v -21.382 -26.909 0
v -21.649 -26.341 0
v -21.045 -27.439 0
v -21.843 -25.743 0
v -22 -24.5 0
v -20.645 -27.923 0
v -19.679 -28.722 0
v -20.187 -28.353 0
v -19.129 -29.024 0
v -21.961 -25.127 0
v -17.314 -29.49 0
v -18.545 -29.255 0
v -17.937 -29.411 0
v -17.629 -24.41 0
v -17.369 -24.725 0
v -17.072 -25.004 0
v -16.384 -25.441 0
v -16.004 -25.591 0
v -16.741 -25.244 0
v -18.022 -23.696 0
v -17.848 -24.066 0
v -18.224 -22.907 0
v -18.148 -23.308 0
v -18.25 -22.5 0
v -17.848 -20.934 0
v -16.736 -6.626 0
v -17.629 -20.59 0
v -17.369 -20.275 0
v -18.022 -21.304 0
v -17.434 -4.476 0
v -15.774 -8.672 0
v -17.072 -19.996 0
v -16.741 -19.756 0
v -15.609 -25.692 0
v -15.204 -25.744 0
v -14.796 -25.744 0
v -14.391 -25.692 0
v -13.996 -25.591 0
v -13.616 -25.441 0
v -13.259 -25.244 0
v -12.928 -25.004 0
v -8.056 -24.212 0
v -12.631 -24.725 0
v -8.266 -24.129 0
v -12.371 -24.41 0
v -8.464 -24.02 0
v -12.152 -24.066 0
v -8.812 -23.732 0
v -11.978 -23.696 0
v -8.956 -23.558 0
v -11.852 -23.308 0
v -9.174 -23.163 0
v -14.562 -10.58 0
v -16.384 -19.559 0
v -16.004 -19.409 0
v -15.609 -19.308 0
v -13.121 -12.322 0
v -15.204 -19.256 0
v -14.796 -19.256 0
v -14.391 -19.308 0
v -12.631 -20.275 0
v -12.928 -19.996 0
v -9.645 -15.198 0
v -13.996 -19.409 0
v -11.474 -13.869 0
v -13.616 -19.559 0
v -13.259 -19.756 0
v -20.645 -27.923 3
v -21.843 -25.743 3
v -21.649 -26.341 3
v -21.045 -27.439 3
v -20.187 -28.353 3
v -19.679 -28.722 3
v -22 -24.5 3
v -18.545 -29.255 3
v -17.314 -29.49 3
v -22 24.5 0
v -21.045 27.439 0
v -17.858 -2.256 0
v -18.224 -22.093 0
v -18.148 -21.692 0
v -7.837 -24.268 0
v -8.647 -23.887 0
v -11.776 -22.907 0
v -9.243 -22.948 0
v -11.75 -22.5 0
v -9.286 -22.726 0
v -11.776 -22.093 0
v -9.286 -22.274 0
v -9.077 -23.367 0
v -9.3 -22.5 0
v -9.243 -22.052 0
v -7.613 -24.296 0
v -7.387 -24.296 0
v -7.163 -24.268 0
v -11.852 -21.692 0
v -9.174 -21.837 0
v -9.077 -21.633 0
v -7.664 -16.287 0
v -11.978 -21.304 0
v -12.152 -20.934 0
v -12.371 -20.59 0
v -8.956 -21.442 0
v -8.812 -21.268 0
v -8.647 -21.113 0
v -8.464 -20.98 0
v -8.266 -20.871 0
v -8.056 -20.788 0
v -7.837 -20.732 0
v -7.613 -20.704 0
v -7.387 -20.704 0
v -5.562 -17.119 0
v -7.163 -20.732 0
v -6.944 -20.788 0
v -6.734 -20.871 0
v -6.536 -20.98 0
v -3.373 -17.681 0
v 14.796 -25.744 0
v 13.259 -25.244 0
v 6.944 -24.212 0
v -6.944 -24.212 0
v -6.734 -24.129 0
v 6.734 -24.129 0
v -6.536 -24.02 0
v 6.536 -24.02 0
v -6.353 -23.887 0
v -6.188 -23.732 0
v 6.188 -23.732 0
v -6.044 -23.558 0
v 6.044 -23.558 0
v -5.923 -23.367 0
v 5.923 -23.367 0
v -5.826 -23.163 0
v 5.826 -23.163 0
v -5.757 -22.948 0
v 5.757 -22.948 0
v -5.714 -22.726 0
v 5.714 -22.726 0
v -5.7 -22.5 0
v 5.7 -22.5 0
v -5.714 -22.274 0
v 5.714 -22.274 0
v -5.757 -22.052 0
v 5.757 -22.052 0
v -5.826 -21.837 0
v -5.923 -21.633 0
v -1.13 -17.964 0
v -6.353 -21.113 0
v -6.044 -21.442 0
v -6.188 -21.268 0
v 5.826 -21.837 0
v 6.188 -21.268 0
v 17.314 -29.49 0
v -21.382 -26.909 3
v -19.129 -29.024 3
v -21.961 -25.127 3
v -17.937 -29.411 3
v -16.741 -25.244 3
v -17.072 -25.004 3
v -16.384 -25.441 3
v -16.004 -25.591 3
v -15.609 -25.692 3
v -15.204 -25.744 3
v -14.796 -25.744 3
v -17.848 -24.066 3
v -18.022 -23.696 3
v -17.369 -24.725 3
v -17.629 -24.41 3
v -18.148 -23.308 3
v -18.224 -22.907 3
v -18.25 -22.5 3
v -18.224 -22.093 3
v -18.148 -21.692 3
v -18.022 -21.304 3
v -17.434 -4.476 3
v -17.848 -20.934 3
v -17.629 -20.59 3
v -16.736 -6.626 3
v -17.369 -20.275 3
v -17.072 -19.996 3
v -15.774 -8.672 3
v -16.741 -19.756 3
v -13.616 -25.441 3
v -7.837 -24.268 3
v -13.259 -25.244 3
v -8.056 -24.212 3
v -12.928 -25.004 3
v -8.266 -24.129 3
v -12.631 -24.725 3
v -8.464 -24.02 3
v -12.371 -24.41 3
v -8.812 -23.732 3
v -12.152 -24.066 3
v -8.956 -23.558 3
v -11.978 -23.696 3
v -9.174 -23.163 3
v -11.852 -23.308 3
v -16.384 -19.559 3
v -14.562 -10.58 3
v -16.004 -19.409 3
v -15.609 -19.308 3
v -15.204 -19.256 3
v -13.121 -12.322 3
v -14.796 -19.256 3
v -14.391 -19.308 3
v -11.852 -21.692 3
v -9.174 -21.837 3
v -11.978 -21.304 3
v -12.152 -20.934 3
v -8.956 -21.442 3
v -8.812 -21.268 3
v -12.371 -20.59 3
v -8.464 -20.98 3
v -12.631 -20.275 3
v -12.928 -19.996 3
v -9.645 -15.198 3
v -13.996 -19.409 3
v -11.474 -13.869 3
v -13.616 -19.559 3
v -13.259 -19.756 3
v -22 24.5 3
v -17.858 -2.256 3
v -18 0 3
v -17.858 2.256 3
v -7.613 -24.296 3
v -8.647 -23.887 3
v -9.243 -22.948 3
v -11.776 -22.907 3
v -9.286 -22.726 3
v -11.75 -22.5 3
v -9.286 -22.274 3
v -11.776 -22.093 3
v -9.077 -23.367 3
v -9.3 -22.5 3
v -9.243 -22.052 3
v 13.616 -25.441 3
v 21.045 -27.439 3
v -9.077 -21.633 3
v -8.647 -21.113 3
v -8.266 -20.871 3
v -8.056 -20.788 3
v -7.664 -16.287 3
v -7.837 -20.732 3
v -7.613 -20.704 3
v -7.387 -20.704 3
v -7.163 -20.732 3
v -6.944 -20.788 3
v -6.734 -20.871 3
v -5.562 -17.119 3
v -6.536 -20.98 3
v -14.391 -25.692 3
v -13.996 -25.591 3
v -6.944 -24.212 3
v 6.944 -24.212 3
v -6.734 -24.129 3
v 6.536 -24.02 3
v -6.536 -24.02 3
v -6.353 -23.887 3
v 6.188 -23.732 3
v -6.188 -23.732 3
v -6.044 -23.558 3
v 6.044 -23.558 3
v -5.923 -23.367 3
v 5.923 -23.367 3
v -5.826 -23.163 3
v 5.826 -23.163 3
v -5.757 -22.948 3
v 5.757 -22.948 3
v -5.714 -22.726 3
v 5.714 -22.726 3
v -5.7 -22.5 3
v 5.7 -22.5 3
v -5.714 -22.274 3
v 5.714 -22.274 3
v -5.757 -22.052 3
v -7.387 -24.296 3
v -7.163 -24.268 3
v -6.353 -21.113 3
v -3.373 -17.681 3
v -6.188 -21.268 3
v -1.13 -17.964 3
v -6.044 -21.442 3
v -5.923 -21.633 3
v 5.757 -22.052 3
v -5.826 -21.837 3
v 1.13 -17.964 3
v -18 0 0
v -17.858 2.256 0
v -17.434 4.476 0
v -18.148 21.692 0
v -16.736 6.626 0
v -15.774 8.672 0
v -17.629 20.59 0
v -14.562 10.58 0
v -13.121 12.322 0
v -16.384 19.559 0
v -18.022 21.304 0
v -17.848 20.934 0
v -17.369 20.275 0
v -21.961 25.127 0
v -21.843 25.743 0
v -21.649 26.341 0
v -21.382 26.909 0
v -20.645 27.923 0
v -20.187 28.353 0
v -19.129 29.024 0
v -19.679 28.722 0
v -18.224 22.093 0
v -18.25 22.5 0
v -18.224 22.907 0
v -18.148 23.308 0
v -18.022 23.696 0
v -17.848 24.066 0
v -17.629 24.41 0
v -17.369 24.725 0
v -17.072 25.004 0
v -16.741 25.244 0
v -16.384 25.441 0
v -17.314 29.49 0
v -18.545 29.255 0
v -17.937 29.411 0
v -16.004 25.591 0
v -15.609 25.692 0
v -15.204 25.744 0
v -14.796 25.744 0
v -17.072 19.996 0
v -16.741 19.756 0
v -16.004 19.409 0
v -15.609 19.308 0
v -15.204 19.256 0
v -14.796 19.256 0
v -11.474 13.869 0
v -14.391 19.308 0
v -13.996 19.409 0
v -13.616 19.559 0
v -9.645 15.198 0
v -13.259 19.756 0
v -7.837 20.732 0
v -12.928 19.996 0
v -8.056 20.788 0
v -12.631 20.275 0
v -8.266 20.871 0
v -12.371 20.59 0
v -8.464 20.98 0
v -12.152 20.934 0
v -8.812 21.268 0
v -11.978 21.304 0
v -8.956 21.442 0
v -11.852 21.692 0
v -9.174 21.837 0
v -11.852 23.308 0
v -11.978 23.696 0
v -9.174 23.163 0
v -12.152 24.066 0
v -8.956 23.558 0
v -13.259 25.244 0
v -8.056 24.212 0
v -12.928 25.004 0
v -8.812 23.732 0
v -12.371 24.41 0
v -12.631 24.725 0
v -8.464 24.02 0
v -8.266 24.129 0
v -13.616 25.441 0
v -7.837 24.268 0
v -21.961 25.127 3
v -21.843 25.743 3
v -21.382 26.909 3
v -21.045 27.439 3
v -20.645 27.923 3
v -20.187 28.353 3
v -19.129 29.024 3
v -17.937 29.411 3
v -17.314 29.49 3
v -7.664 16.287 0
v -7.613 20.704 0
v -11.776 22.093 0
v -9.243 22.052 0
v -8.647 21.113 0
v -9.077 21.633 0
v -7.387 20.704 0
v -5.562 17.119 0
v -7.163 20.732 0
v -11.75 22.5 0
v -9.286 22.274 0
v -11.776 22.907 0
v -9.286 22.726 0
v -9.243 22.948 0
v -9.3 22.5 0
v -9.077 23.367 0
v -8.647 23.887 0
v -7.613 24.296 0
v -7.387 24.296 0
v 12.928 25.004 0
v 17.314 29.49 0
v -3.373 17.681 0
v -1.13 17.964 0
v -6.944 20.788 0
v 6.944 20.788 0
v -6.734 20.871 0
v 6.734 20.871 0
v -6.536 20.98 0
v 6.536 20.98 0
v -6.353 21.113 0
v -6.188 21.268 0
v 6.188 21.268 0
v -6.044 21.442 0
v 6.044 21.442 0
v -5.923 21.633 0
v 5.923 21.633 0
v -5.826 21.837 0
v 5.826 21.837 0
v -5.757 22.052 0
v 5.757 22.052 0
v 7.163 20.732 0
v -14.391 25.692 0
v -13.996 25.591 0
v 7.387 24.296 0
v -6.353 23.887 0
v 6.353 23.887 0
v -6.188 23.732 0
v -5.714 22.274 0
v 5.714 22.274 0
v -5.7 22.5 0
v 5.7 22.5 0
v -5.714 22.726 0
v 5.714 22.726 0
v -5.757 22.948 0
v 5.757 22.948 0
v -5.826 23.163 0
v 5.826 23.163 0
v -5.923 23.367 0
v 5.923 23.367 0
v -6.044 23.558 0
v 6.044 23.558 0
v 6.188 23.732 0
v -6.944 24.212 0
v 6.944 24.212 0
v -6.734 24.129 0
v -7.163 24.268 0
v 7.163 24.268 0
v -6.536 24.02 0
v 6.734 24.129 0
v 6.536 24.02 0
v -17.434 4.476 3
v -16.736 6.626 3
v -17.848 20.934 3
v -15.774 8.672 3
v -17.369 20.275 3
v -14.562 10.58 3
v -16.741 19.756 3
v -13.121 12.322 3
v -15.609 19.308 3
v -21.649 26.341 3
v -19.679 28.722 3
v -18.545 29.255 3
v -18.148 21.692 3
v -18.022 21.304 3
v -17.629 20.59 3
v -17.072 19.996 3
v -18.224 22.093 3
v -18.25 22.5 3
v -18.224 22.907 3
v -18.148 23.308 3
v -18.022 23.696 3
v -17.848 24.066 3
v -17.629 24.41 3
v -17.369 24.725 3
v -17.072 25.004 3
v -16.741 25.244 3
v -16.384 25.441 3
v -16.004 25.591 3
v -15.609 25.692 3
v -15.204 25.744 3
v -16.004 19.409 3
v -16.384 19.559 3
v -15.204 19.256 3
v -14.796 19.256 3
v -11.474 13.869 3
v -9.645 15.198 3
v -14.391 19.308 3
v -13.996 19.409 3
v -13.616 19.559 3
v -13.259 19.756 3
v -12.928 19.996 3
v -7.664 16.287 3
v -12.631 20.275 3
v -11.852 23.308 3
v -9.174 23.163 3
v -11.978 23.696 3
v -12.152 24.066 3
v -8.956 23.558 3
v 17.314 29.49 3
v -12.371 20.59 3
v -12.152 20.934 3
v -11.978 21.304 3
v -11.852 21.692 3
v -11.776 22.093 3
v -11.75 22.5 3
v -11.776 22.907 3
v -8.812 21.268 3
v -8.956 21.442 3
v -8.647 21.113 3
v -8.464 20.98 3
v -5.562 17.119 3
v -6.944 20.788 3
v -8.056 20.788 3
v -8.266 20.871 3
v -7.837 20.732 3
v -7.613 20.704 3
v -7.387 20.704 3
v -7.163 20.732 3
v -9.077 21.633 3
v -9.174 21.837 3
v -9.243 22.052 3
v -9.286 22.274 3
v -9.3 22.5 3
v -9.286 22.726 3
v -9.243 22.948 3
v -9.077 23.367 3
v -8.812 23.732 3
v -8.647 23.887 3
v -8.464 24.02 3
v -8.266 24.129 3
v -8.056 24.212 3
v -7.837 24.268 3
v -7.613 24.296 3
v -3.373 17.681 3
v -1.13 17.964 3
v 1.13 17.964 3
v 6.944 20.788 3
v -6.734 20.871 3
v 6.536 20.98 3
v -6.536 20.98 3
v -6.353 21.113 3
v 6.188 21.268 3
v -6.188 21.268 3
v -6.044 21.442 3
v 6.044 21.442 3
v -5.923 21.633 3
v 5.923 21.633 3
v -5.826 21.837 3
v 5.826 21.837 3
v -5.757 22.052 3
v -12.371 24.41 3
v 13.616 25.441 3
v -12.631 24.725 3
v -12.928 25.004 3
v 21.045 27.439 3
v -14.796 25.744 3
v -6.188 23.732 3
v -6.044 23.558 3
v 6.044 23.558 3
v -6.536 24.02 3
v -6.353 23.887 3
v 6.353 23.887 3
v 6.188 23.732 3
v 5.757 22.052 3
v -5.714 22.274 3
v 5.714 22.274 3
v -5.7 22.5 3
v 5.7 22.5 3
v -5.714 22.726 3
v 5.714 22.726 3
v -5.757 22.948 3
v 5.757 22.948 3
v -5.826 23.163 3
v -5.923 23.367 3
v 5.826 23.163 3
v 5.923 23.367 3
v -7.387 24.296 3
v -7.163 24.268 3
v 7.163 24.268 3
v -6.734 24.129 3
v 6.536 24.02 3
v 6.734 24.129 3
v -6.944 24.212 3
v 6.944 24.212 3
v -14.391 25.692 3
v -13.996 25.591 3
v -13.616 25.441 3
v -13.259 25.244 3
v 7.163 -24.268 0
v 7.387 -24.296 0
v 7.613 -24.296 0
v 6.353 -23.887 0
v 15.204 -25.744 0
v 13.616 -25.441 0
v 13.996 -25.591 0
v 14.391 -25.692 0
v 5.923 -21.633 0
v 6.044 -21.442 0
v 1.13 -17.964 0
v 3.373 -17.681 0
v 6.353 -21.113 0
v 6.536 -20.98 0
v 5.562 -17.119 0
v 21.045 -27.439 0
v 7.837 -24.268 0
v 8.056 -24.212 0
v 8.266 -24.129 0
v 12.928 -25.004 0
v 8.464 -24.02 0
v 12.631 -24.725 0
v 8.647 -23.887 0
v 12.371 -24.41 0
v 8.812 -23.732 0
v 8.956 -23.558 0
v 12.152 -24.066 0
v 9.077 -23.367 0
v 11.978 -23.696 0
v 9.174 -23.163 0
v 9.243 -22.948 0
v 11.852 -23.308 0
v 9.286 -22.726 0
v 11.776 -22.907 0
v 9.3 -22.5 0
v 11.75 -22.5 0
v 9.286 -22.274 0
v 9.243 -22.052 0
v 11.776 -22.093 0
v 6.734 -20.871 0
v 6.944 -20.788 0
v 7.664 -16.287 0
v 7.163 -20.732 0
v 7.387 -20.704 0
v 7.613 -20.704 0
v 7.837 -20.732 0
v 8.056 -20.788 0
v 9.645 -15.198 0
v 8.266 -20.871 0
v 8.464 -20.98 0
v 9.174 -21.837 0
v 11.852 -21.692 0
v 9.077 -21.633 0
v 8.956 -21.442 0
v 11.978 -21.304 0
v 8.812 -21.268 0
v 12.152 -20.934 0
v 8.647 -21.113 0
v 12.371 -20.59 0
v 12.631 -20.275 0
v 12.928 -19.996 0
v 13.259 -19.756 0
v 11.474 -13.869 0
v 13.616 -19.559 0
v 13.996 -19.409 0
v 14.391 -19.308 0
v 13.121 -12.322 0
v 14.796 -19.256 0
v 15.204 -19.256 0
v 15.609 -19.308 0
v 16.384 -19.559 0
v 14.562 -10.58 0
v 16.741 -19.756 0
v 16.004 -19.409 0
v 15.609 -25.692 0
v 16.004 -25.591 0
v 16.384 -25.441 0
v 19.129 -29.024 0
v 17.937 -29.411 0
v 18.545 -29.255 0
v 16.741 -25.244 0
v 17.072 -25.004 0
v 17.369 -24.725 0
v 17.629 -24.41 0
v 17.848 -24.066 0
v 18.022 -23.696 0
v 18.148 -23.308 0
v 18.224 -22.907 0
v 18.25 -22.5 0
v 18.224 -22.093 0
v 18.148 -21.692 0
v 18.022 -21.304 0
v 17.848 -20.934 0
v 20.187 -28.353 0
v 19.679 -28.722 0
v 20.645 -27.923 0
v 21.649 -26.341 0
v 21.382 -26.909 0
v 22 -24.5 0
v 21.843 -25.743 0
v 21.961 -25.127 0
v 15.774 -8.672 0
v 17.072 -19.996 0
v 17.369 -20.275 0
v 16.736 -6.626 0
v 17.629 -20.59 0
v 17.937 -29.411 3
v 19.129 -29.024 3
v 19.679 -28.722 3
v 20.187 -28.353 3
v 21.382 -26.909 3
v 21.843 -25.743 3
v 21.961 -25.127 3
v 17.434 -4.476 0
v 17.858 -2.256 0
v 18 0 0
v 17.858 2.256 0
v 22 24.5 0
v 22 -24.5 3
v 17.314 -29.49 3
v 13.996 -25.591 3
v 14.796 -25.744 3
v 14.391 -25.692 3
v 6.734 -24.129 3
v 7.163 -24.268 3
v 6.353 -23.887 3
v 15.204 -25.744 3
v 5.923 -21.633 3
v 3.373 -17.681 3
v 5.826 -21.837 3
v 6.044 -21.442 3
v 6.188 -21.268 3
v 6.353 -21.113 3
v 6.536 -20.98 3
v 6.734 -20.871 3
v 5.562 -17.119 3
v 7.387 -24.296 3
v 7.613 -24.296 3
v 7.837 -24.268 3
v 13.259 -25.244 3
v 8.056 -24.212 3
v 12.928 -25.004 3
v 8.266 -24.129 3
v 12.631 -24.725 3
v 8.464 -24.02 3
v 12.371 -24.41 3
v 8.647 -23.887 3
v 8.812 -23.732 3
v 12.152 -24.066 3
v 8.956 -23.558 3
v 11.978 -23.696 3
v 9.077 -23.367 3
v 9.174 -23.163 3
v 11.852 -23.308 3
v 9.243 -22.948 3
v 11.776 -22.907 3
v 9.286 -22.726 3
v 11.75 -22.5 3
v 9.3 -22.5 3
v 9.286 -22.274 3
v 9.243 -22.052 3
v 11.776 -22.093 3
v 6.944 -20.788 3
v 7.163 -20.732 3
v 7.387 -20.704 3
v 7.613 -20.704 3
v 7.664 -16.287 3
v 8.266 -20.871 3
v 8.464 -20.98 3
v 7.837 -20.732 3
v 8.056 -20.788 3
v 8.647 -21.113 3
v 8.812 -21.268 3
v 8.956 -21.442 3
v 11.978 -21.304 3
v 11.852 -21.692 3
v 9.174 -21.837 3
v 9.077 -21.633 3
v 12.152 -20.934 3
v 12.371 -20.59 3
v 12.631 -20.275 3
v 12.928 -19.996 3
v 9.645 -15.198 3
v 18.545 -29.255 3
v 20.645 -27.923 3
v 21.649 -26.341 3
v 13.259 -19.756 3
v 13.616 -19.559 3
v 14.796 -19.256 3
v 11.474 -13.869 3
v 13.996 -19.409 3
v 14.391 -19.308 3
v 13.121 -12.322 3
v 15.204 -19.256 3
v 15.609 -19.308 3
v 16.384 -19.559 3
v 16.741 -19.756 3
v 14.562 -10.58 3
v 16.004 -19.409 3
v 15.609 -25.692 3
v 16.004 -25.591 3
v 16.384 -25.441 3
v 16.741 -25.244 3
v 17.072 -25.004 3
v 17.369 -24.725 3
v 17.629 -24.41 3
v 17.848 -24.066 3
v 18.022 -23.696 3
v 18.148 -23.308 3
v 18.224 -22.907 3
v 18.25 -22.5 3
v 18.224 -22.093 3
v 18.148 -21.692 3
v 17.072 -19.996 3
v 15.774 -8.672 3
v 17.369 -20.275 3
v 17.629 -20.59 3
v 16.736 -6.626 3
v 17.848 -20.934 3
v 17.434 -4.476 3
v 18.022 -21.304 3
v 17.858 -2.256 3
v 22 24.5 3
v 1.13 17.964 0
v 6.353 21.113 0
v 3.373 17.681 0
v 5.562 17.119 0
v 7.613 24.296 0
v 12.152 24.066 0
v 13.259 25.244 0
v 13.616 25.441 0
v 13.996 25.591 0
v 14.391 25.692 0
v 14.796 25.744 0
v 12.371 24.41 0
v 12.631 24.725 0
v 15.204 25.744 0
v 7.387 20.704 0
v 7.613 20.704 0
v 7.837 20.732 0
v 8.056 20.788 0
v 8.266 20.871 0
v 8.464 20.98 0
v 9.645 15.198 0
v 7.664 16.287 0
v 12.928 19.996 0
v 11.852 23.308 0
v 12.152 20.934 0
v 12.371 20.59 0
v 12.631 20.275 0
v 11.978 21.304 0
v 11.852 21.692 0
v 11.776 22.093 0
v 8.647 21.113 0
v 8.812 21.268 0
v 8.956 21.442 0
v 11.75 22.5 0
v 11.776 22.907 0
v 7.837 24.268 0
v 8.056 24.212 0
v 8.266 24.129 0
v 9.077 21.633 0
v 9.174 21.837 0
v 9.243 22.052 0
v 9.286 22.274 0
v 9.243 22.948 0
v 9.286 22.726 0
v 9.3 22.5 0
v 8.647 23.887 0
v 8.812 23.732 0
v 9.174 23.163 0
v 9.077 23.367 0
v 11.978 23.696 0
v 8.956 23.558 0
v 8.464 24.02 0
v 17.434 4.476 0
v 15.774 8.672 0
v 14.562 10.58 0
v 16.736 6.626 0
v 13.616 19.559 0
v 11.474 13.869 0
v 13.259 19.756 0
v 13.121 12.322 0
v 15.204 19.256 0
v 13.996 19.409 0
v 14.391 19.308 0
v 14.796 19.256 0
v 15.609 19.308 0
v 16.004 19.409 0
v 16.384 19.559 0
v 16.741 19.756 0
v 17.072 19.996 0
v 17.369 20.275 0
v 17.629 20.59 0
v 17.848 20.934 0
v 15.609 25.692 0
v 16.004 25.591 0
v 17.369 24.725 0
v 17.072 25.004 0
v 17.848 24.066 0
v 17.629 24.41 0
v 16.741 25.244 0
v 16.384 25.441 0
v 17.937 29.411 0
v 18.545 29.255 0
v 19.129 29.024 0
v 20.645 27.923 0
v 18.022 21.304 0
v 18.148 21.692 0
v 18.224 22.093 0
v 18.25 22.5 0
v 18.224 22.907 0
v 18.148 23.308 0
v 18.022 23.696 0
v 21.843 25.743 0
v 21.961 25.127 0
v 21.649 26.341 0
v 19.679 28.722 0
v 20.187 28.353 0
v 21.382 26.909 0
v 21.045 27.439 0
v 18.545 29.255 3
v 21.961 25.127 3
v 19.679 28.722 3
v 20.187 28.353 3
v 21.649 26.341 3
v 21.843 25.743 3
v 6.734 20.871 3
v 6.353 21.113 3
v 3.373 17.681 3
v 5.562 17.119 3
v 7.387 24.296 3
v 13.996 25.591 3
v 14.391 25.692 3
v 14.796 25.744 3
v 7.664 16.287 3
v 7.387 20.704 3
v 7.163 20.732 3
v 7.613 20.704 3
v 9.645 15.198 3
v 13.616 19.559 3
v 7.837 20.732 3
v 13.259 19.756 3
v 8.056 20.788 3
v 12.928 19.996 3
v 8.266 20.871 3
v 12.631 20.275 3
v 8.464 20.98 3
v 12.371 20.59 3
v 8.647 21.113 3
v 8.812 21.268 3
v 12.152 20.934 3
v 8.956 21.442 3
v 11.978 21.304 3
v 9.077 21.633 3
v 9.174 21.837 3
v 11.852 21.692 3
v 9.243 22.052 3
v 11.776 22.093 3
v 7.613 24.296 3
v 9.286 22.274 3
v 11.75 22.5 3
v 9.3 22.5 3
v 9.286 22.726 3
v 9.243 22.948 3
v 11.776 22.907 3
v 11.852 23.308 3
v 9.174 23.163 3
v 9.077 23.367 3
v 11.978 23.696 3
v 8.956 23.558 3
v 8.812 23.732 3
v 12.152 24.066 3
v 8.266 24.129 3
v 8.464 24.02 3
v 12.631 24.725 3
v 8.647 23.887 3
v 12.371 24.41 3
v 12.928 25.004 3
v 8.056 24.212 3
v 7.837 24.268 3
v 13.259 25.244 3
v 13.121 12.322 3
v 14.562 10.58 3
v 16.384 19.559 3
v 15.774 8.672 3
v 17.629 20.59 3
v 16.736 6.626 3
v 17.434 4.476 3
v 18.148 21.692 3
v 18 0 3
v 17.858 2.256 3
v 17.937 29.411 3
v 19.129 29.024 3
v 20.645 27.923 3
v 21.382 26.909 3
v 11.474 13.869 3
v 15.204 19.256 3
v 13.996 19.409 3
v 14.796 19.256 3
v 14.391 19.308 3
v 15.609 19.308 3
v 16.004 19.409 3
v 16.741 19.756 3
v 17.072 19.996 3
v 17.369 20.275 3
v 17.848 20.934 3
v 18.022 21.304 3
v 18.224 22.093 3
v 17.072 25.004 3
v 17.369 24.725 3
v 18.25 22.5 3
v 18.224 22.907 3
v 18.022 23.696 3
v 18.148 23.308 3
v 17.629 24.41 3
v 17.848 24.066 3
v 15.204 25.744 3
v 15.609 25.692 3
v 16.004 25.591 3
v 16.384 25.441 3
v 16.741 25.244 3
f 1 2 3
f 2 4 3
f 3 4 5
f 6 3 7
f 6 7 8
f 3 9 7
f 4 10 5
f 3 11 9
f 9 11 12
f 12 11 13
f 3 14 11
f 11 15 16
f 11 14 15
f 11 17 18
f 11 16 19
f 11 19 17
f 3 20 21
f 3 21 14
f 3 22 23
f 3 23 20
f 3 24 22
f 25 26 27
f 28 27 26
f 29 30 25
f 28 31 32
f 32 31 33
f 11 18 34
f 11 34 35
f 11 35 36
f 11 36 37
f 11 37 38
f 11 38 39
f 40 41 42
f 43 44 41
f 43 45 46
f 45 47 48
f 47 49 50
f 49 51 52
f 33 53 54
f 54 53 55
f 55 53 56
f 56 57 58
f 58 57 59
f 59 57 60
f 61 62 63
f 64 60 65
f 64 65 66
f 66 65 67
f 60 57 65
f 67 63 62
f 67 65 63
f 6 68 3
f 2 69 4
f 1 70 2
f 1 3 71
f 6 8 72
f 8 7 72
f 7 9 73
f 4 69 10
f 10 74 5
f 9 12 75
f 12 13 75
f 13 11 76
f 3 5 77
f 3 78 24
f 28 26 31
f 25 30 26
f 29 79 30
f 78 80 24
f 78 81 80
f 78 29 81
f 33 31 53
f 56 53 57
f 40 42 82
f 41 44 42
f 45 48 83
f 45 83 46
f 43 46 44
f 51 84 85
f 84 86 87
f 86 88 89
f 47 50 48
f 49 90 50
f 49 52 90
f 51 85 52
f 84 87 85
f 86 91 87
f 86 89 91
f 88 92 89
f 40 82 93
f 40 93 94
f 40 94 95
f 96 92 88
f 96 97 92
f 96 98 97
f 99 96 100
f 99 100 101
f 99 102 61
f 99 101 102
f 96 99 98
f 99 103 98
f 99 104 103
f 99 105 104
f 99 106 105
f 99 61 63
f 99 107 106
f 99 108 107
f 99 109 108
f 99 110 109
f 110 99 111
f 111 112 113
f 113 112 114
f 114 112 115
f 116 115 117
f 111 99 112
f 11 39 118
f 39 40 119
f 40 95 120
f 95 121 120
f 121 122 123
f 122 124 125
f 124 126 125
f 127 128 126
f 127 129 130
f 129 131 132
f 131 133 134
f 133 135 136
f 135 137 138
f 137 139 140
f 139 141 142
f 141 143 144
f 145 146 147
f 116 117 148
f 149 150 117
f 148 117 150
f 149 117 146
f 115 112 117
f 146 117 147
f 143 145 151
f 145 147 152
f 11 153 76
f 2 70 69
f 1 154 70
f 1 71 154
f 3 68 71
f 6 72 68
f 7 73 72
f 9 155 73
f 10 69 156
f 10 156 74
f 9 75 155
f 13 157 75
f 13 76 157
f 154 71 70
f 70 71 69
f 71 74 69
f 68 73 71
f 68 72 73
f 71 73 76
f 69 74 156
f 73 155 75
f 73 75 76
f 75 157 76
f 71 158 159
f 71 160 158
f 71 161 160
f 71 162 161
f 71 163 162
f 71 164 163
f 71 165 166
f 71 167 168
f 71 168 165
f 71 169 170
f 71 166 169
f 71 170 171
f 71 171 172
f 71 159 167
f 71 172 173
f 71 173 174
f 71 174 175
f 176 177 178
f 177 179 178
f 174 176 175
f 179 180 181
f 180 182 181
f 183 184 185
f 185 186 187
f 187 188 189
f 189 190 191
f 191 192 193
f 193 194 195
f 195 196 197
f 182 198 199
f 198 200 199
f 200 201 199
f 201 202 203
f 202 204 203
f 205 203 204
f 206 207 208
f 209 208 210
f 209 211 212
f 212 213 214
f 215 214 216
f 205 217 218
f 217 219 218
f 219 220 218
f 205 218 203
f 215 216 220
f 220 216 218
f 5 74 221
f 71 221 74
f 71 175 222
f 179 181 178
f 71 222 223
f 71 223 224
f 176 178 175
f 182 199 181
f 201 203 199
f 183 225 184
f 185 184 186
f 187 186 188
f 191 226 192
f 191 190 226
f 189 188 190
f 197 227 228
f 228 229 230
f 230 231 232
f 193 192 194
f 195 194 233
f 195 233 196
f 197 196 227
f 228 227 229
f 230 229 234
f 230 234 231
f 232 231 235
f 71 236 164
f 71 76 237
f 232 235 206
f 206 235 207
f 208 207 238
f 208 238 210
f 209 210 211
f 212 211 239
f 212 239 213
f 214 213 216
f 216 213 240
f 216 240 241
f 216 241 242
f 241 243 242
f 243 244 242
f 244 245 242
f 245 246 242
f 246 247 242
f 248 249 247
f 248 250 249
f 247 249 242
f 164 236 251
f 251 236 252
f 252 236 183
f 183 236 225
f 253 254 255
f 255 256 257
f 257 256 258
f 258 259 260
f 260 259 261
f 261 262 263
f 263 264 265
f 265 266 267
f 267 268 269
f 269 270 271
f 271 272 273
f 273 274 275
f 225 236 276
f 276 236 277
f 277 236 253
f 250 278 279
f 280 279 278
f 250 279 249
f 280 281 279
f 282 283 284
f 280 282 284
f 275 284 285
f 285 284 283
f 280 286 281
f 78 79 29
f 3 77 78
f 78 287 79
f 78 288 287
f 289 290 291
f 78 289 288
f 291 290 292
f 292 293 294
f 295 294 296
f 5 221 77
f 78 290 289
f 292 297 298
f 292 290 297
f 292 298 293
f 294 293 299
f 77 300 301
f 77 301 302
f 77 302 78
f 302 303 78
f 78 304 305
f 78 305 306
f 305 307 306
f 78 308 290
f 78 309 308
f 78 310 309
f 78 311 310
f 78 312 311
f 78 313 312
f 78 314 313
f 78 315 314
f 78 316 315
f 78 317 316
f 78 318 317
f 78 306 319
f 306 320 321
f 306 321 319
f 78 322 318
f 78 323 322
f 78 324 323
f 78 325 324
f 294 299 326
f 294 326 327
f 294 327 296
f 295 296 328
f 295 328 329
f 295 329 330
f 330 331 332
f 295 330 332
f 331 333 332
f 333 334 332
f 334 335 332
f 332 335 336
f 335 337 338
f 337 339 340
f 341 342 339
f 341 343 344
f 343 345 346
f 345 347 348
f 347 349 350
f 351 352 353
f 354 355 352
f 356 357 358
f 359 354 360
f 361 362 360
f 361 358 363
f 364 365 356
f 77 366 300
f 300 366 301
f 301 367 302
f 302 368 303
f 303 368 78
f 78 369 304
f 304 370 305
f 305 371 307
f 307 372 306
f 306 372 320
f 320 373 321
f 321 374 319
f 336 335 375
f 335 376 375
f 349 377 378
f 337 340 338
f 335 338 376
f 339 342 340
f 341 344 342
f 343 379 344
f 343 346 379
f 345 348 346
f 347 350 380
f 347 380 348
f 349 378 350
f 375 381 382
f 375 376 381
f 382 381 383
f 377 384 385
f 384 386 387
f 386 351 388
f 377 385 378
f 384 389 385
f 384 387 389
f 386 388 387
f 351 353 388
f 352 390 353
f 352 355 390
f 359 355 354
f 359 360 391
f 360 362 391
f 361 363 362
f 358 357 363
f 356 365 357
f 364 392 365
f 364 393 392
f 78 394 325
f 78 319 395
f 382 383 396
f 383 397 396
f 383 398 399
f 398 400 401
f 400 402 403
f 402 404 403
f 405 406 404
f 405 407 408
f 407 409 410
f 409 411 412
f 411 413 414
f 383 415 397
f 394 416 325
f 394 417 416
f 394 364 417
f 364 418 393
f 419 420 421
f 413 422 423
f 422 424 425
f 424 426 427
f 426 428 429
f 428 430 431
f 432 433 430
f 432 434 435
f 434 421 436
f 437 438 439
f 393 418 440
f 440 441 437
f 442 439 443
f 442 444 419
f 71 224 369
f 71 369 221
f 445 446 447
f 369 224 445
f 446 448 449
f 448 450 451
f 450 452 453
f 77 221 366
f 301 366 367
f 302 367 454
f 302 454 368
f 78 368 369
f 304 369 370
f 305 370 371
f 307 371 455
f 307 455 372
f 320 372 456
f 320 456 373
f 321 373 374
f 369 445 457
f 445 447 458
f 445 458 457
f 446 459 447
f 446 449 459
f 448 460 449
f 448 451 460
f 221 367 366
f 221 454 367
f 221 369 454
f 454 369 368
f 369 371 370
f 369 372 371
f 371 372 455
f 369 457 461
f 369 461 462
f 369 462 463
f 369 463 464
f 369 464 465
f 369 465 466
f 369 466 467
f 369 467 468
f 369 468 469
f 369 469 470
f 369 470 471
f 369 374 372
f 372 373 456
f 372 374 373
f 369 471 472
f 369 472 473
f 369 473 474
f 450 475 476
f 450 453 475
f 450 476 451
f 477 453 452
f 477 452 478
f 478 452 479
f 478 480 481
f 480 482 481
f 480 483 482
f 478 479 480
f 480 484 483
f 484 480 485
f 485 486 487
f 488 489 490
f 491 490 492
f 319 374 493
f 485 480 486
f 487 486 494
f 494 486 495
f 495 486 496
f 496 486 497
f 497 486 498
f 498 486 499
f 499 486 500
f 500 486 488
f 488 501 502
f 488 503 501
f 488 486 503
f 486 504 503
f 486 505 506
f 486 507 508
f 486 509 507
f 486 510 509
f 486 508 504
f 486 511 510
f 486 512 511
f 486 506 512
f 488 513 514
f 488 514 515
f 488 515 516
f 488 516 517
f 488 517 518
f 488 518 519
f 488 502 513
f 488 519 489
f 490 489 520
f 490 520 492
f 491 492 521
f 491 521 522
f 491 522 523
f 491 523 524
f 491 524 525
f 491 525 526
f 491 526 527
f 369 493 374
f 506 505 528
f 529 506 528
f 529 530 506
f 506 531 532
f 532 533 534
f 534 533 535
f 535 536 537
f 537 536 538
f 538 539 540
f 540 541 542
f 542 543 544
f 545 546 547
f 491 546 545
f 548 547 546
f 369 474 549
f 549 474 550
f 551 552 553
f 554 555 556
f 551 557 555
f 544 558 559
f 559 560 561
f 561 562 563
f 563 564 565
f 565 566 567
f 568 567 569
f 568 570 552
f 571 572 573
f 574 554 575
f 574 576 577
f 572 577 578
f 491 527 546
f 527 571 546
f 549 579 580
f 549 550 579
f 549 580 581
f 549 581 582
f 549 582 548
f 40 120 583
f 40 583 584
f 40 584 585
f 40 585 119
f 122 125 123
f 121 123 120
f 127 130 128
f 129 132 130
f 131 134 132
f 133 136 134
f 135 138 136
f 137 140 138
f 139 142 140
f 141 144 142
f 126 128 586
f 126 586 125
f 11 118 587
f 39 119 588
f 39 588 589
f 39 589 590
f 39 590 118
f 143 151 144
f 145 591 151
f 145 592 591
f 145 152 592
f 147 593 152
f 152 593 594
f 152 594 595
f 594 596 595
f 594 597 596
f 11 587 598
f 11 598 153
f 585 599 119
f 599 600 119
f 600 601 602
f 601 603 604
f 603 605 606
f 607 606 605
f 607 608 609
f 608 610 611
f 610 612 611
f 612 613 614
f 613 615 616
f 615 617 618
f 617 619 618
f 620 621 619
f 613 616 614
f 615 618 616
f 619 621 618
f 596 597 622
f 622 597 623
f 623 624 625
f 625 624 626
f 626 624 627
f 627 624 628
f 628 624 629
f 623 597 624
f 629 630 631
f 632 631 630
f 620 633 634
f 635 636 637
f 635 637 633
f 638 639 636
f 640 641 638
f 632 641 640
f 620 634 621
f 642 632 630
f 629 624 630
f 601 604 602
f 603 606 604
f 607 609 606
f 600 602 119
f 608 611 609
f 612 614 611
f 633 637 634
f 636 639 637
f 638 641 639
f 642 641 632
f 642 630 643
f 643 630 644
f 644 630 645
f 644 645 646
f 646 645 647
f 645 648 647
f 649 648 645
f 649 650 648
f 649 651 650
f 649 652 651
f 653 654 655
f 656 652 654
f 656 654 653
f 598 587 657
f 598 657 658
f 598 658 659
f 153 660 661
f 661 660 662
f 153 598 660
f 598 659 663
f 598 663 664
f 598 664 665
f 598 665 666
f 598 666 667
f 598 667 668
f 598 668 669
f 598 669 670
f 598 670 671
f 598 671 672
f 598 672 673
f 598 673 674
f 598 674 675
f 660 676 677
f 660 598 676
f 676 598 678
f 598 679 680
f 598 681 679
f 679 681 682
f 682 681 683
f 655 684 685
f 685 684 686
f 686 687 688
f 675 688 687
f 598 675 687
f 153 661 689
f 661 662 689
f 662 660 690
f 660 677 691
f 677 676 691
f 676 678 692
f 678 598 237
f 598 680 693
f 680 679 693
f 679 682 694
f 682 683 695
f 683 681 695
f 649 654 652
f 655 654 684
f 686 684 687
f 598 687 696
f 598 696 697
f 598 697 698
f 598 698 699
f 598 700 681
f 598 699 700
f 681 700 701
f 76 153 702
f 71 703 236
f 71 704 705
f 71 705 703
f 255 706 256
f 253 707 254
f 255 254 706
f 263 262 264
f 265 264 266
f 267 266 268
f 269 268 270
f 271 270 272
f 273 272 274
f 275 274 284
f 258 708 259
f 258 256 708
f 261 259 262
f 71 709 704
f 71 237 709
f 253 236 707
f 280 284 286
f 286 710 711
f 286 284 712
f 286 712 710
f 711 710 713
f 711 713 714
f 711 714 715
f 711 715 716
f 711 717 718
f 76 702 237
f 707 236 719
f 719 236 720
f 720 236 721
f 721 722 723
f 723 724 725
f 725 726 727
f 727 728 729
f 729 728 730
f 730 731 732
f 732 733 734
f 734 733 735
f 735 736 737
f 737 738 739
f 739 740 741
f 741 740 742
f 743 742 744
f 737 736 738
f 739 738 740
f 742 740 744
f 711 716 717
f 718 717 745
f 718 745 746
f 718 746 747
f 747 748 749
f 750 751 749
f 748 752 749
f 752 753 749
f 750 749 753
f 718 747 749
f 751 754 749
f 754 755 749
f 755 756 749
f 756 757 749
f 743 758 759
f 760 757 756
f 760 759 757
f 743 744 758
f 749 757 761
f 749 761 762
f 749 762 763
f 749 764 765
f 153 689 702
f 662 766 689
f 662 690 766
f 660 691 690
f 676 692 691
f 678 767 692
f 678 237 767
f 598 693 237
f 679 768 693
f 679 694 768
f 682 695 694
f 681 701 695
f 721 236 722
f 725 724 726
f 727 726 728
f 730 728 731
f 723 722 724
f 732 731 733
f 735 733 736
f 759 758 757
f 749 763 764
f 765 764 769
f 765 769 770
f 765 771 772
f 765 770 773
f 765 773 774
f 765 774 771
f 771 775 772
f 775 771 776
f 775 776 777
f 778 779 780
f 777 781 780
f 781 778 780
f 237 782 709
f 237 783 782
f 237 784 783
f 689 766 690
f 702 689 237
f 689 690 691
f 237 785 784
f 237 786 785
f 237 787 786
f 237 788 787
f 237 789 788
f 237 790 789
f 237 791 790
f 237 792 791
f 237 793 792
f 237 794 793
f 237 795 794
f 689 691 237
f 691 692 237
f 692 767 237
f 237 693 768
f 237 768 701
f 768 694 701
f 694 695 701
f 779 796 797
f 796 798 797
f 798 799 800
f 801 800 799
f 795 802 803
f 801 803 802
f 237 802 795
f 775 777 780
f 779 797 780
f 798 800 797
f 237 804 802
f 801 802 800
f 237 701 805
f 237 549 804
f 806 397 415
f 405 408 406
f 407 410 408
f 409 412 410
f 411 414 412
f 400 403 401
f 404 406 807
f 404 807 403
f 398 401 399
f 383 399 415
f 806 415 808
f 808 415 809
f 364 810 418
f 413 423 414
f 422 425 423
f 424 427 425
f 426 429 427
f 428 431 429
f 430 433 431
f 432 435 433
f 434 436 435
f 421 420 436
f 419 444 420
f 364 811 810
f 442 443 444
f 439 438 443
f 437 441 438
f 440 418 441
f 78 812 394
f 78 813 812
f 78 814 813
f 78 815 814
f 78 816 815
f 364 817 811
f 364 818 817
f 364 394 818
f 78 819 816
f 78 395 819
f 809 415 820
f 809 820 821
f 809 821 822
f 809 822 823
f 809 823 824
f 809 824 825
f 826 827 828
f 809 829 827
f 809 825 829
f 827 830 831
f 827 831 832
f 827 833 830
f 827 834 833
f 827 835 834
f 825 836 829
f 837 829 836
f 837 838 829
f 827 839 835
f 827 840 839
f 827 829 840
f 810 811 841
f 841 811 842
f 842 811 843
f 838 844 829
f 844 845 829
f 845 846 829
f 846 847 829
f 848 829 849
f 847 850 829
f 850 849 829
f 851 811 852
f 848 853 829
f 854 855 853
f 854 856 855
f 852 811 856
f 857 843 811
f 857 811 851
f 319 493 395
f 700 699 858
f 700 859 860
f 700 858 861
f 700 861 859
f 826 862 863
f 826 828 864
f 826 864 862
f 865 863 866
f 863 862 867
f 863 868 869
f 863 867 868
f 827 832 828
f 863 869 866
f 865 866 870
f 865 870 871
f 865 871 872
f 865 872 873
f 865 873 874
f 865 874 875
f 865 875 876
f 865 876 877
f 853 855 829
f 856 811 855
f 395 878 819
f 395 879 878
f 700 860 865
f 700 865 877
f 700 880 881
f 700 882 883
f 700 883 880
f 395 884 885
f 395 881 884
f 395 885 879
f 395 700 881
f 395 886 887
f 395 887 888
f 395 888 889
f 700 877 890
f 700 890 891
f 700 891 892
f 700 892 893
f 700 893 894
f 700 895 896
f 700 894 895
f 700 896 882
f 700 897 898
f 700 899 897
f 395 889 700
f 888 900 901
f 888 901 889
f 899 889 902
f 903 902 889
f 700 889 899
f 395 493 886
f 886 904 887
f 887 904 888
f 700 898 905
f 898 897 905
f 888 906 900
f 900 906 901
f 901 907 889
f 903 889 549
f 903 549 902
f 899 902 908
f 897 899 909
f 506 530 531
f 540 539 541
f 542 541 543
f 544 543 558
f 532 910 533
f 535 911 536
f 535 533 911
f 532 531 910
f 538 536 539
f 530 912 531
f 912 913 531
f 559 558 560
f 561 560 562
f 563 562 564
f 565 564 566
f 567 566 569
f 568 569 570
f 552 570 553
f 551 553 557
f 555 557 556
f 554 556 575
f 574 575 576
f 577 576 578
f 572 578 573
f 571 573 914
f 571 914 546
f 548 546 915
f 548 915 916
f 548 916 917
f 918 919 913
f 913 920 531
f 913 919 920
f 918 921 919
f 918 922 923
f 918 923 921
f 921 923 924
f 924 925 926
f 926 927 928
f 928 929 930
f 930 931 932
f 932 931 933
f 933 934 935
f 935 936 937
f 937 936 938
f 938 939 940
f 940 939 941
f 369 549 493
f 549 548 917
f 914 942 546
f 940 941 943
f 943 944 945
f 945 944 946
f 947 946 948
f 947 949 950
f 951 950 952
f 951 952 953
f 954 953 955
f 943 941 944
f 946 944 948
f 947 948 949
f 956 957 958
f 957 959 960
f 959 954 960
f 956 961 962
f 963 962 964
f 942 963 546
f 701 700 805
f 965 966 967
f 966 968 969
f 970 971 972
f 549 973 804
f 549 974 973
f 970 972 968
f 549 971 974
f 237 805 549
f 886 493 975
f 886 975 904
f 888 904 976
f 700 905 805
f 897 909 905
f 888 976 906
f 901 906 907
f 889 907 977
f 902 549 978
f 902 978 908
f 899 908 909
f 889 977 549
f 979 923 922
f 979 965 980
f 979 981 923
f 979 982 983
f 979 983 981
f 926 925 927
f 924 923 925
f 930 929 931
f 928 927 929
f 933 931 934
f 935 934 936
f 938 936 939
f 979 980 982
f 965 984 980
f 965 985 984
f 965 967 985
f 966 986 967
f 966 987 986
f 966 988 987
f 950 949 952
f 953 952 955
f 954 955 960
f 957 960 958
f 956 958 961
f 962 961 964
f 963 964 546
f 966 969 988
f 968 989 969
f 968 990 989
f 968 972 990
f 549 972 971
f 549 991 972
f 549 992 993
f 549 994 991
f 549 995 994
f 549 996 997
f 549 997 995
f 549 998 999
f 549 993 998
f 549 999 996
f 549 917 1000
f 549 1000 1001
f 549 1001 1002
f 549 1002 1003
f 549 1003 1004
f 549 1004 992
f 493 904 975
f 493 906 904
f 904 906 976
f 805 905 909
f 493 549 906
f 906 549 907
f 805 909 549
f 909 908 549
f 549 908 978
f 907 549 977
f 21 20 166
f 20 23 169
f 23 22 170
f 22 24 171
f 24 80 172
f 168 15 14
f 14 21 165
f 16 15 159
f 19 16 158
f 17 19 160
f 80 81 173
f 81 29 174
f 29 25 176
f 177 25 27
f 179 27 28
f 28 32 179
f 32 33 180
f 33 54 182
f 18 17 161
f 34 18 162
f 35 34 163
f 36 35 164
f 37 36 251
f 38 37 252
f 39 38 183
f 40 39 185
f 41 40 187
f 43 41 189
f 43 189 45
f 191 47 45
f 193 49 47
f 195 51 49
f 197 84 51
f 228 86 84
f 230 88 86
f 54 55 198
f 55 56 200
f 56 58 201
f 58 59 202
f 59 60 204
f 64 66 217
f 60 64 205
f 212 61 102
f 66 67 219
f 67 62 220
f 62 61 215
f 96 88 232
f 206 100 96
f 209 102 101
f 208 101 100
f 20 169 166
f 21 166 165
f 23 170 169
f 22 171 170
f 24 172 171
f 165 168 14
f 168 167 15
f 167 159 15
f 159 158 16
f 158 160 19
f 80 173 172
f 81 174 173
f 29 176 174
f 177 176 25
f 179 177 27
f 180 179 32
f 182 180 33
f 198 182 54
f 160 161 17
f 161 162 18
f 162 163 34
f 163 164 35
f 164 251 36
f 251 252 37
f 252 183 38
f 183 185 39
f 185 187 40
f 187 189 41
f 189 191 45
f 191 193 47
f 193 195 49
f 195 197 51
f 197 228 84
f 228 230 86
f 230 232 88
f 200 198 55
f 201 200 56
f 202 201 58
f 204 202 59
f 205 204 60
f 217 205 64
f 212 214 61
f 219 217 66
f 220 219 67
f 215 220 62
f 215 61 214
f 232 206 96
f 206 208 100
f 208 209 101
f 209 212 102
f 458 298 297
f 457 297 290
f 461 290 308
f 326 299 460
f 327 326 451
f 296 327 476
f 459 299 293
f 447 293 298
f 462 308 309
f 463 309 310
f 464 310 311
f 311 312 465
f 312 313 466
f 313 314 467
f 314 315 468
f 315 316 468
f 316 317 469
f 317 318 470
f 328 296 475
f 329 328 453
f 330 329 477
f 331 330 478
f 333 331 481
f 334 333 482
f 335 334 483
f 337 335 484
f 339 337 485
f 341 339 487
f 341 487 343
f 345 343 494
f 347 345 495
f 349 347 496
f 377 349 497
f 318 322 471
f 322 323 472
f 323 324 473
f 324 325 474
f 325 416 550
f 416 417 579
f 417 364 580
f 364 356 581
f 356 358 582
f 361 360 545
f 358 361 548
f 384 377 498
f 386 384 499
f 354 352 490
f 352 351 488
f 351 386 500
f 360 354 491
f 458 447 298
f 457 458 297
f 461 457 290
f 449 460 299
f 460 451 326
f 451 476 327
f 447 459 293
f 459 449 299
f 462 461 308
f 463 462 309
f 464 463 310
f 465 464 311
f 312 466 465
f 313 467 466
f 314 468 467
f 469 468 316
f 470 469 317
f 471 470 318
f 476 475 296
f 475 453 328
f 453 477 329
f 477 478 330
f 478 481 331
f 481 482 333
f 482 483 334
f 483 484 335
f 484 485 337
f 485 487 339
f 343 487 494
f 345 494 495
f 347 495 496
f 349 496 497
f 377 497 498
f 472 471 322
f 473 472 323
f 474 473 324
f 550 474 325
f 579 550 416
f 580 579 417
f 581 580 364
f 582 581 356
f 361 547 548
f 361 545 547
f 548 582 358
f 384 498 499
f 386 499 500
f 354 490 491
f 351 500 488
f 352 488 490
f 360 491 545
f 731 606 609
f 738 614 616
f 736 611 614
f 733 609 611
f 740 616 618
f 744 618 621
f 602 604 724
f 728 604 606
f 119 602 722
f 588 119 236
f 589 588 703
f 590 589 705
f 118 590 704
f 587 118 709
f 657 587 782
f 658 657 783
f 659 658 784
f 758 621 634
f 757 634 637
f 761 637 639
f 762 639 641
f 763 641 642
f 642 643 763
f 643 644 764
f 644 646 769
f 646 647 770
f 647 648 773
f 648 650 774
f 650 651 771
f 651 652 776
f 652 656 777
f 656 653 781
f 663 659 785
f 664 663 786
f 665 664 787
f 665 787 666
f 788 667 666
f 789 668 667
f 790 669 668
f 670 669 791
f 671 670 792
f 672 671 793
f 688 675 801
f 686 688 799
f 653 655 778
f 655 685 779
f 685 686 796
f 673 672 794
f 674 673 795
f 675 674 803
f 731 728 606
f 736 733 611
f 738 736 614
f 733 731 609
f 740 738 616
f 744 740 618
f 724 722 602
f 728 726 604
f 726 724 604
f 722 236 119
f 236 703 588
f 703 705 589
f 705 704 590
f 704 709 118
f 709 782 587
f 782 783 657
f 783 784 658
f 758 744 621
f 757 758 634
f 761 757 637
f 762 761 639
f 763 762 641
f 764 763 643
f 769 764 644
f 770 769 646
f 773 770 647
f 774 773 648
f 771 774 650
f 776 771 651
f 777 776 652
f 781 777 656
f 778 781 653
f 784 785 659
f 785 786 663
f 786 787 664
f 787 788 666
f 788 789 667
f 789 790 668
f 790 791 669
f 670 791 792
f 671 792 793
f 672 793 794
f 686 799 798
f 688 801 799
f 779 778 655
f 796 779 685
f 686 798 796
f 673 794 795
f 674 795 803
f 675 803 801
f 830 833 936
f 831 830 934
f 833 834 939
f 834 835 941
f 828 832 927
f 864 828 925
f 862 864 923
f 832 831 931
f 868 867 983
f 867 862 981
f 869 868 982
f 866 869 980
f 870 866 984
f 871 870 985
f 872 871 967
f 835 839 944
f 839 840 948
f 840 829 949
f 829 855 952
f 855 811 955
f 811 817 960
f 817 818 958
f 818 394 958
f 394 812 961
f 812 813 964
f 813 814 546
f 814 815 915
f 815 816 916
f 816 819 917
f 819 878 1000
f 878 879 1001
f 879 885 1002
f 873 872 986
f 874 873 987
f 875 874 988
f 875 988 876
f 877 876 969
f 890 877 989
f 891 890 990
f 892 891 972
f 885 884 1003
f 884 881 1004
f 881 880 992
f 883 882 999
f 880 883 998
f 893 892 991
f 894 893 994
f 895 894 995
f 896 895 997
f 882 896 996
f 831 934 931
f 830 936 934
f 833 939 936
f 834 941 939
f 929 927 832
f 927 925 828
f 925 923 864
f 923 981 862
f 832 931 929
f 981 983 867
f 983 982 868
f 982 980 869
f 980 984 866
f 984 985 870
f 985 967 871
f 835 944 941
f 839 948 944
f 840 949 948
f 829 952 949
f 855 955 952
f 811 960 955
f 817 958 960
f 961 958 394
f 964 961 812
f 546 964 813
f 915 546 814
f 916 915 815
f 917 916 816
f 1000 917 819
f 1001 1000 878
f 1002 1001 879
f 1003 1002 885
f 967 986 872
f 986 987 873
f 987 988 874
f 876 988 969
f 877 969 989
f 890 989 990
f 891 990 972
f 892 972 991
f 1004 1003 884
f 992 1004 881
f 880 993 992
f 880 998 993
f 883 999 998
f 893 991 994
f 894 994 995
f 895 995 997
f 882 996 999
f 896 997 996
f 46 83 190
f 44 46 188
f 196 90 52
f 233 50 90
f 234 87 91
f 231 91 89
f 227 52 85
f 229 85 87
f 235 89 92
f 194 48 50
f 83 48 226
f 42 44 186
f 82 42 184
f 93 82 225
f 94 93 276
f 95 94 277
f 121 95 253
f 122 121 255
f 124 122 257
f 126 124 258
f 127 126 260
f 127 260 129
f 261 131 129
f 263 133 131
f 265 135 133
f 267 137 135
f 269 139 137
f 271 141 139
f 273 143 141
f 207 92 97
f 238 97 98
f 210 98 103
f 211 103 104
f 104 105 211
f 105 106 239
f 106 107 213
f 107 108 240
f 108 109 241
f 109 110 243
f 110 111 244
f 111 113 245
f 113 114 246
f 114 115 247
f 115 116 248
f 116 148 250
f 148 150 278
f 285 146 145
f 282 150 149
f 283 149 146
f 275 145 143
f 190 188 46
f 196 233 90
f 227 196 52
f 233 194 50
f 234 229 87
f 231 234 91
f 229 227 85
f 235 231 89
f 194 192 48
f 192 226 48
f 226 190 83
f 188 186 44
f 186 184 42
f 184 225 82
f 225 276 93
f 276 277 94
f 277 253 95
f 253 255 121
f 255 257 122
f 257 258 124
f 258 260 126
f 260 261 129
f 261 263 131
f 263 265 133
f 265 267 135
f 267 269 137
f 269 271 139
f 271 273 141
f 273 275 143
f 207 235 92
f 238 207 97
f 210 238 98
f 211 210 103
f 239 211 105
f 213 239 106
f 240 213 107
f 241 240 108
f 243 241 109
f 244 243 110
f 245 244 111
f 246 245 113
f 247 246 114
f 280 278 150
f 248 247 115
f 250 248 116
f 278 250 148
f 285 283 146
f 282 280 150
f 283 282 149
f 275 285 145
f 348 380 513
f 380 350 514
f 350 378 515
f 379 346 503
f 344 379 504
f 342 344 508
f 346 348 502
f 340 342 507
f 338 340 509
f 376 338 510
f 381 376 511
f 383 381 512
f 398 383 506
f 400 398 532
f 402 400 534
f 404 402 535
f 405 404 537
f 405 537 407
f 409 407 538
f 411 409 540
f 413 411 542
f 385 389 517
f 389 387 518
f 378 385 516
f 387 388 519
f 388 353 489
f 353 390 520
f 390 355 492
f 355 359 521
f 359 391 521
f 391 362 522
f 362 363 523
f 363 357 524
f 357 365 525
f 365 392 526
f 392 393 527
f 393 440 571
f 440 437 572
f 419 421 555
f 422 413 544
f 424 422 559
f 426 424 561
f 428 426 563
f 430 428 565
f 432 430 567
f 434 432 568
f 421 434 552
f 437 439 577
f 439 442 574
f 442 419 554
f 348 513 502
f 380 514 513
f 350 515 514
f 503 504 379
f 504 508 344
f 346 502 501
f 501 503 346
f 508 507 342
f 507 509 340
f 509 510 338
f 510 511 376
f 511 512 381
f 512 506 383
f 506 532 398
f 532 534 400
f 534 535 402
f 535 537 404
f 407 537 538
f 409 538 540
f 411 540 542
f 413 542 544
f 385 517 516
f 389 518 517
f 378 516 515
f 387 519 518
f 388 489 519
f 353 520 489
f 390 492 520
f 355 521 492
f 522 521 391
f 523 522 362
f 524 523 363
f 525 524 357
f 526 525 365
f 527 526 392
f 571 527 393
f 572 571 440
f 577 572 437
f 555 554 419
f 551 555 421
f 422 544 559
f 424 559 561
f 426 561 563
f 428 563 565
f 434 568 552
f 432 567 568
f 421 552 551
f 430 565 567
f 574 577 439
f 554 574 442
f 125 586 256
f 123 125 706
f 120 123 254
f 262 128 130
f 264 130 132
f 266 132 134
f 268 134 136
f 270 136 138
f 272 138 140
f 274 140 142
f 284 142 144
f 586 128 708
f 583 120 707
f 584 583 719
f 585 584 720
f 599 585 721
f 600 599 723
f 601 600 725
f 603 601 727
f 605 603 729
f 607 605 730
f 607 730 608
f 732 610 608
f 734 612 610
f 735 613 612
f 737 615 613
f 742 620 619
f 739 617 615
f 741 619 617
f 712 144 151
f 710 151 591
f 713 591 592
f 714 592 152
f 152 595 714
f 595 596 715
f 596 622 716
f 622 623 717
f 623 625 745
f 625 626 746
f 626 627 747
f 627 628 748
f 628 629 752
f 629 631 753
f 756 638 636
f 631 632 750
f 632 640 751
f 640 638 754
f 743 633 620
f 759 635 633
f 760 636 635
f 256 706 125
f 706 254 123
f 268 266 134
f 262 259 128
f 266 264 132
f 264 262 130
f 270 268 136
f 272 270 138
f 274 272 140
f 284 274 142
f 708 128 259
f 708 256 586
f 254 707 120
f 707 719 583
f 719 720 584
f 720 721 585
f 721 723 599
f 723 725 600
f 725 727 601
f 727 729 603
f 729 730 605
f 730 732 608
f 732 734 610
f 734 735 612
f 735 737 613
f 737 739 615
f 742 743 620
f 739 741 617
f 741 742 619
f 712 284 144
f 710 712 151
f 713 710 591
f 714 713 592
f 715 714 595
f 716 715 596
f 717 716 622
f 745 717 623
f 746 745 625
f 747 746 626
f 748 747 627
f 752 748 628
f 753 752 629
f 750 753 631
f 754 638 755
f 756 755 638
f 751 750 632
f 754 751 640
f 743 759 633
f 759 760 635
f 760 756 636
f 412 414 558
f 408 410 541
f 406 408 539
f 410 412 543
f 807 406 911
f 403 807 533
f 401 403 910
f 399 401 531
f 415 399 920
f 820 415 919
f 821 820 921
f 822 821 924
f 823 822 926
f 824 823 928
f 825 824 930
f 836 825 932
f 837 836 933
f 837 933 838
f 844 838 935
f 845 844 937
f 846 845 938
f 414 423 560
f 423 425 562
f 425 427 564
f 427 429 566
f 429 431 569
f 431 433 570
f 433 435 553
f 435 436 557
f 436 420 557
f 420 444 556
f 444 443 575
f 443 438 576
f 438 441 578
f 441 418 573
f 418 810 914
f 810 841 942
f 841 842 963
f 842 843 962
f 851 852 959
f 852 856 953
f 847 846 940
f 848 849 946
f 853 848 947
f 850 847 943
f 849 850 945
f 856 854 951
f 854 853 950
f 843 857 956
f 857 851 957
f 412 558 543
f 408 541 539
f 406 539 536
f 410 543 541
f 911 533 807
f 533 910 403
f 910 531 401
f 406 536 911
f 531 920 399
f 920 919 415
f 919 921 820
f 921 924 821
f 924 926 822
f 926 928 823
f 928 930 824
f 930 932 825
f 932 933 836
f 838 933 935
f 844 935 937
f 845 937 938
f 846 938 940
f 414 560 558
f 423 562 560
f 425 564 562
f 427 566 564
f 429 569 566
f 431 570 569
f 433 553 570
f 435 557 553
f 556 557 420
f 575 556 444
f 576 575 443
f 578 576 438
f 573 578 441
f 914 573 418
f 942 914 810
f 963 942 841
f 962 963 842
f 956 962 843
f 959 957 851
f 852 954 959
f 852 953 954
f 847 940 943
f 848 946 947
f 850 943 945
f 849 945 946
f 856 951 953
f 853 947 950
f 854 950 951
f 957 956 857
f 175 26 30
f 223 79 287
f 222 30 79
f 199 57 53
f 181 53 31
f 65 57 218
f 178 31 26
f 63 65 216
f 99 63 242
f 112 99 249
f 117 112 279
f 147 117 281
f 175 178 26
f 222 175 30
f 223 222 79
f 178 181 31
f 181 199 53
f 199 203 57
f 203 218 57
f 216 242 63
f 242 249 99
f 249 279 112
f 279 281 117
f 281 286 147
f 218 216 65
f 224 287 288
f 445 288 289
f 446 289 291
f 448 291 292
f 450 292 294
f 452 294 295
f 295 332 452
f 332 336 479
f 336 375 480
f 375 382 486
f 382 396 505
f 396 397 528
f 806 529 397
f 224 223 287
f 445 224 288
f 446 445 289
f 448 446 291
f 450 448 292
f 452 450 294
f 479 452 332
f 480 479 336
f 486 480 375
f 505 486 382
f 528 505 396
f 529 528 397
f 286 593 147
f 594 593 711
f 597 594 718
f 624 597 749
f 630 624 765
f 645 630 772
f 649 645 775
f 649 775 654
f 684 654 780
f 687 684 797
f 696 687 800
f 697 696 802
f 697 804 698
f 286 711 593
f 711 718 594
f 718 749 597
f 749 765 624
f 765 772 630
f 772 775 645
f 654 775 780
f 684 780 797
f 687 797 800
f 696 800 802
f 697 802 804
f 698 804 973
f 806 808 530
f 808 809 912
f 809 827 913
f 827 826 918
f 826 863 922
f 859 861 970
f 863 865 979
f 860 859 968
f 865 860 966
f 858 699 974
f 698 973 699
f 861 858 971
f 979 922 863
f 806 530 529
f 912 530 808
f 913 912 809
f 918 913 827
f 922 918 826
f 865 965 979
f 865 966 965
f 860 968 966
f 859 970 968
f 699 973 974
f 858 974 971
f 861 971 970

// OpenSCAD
$fn = 50;

difference() {
	union() {
		hull() {
			translate(v = [-17.0, 24.5, 0]) {
				cylinder(h = 3, r = 5);
			}
			translate(v = [17.0, 24.5, 0]) {
				cylinder(h = 3, r = 5);
			}
			translate(v = [-17.0, -24.5, 0]) {
				cylinder(h = 3, r = 5);
			}
			translate(v = [17.0, -24.5, 0]) {
				cylinder(h = 3, r = 5);
			}
		}
	}
	union() {
		translate(v = [-15.0, -22.5, 0]) {
			cylinder(h = 3, r = 3.25);
		}
		translate(v = [-15.0, 22.5, 0]) {
			cylinder(h = 3, r = 3.25);
		}
		translate(v = [15.0, -22.5, 0]) {
			cylinder(h = 3, r = 3.25);
		}
		translate(v = [15.0, 22.5, 0]) {
			cylinder(h = 3, r = 3.25);
		}
		translate(v = [-7.5, -22.5, 0]) {
			cylinder(h = 3, r = 1.8);
		}
		translate(v = [-7.5, 22.5, 0]) {
			cylinder(h = 3, r = 1.8);
		}
		translate(v = [7.5, -22.5, 0]) {
			cylinder(h = 3, r = 1.8);
		}
		translate(v = [7.5, 22.5, 0]) {
			cylinder(h = 3, r = 1.8);
		}
		cylinder(h = 3, r = 18.0);
	}
}
